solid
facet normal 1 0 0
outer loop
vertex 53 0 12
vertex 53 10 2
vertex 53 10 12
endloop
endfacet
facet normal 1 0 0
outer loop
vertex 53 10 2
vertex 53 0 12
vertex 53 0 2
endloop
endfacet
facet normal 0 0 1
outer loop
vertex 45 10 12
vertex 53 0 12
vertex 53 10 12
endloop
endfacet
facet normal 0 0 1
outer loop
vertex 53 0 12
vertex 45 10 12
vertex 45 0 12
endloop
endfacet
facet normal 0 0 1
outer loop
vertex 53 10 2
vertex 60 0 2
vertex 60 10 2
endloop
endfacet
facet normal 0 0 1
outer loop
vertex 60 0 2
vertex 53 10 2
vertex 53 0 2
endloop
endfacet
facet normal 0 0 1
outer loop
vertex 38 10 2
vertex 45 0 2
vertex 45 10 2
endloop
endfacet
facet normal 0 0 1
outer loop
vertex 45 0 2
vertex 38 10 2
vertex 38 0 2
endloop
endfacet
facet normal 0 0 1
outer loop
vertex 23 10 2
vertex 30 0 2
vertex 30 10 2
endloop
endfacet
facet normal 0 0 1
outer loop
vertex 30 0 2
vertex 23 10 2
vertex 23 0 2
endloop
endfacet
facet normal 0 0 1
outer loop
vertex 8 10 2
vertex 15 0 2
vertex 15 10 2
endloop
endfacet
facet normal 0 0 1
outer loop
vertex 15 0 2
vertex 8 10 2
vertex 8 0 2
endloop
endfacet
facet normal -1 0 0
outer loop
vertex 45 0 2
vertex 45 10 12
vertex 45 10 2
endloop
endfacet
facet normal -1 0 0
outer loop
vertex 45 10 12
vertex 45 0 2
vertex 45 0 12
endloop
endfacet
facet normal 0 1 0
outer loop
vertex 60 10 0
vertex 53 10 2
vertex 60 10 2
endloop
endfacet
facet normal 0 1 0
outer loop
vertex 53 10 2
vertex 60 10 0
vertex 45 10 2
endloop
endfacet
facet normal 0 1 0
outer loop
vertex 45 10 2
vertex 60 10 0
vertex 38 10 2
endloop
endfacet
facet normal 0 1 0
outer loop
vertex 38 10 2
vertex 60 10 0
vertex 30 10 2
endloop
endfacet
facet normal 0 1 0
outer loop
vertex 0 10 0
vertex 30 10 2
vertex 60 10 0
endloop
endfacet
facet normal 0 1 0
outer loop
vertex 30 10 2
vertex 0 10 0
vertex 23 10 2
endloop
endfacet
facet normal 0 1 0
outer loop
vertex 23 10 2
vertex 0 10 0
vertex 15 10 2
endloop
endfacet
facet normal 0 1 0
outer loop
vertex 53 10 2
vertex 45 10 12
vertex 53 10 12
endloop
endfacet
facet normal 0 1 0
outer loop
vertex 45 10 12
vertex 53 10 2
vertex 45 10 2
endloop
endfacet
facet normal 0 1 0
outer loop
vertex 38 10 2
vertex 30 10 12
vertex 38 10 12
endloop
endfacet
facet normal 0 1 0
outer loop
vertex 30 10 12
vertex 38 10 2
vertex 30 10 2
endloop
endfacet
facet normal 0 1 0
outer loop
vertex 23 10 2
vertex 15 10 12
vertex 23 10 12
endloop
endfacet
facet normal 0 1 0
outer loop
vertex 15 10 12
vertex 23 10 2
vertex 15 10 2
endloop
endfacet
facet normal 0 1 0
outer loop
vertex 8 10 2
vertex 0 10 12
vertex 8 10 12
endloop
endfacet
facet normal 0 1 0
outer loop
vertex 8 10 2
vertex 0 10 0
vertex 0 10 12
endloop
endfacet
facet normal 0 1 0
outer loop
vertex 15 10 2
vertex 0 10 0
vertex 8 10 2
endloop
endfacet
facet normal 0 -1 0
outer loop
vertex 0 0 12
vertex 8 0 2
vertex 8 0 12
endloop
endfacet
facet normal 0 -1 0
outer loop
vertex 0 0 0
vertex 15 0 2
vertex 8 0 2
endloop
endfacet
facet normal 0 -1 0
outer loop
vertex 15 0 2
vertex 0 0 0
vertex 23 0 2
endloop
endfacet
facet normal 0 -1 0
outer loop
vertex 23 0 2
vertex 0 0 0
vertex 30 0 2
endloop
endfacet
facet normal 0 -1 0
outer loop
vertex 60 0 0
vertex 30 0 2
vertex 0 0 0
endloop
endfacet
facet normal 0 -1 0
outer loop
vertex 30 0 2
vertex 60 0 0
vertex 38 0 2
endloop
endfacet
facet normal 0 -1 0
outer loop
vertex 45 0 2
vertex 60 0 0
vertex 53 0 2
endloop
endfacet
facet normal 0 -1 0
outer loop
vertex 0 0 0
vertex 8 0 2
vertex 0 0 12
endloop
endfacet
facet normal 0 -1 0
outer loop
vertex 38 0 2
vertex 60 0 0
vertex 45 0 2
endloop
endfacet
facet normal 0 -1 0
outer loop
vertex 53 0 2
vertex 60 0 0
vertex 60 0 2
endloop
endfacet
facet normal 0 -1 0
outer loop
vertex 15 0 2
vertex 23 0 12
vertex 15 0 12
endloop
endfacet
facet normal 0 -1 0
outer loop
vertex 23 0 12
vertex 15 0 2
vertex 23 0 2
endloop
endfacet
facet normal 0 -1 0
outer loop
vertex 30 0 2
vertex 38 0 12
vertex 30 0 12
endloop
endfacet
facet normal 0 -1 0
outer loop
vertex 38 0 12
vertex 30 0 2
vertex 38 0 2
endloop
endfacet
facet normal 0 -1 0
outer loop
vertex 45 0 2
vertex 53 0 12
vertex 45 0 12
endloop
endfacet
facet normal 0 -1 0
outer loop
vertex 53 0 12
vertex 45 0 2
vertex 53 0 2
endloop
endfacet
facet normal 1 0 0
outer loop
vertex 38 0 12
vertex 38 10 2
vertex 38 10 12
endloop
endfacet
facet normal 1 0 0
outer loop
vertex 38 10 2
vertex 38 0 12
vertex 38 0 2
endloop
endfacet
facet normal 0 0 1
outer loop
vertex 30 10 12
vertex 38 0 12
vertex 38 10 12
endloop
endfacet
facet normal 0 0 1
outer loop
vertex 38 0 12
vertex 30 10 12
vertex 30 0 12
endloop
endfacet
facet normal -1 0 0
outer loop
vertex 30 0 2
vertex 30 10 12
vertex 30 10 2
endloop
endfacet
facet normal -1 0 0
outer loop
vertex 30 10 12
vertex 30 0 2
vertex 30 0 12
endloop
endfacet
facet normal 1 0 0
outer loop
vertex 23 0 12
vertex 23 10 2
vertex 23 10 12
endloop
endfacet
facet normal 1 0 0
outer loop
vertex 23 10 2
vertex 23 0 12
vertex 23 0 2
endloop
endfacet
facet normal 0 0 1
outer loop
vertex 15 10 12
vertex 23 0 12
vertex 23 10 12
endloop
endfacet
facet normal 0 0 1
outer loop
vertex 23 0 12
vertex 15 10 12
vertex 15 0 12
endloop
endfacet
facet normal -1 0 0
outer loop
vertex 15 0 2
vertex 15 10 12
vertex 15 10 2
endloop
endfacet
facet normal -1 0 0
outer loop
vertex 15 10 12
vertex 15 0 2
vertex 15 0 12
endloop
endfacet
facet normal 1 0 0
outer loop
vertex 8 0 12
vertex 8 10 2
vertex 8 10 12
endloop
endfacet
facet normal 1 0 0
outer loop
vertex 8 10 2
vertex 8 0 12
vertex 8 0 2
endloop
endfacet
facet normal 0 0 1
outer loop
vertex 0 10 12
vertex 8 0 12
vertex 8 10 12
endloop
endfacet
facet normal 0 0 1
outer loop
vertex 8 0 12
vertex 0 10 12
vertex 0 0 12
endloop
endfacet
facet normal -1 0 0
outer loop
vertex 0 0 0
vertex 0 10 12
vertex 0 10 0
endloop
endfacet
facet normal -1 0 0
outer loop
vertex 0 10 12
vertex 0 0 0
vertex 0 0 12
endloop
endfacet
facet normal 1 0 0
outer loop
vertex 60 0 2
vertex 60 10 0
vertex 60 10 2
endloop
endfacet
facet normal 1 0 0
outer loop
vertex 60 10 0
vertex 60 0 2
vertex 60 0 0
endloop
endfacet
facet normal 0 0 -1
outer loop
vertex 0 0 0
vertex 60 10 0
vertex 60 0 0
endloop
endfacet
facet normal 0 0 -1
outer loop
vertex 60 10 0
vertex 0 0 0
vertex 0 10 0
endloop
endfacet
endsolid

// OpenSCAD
// Parameters for the teeth_plate
plate_length = 60;  // Length of the rectangular plate
plate_width = 10;   // Width of the rectangular plate
plate_thickness = 2; // Thickness of the rectangular plate
tooth_width = 8;    // Width of each tooth
tooth_height = 10;  // Height of each tooth
tooth_spacing = 7;  // Spacing between the teeth
num_teeth = 4;      // Number of teeth

module teeth_plate() {
    // Base plate
    cube([plate_length, plate_width, plate_thickness]);

    // Add teeth
    for (i = [0:num_teeth-1]) {
        translate([plate_length - (tooth_width + tooth_spacing) * (i + 1), 0, plate_thickness])
            cube([tooth_width, plate_width, tooth_height]);
    }
}

// Render the teeth_plate
teeth_plate();
